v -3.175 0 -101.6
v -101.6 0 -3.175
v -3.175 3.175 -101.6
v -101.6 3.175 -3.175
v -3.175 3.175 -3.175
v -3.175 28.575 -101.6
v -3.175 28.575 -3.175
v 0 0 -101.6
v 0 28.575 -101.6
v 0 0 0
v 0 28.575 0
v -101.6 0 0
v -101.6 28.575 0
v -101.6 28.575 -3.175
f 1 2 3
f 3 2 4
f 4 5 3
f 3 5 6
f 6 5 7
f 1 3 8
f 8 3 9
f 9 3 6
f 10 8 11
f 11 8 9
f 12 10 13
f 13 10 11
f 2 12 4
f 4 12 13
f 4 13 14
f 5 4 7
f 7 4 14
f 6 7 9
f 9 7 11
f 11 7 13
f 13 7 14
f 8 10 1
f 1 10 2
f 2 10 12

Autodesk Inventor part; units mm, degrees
ref_plane "YZ Plane" through (0, 0, 0) normal (1, 0, 0) x (0, 1, 0)
ref_plane "XZ Plane" through (0, 0, 0) normal (0, 1, 0) x (-1, 0, 0)
ref_plane "XY Plane" through (0, 0, 0) normal (0, 0, 1) x (1, 0, 0)
sketch "Sketch1" plane through (0, 0, 0) normal (0, 1, 0) x (-1, 0, 0)
  line L0 (0, 0) -> (101.6, 0)
  line L1 (101.6, 0) -> (101.6, -3.175)
  line L2 (101.6, -3.175) -> (3.175, -3.175)
  line L3 (0, -3.175) -> (0, 0)
  line L4 (0, 0) -> (3.175, 0)
  line L5 (3.175, -3.175) -> (3.175, -101.6)
  line L6 (3.175, -101.6) -> (0, -101.6)
  line L7 (0, -101.6) -> (0, 0)
  dimension "d0" = 101.6
  dimension "d1" = 3.175
  dimension "d2" = 3.175
  dimension "d3" = 101.6
extrude "Extrusion1" add sketch "Sketch1" along normal blind 28.575
sketch "Sketch2" plane through (0, 0, 0) normal (0, -1, 0) x (1, 0, 0)
  line L0 (-3.175, -101.6) -> (-3.175, -3.175) projected
  line L1 (-3.175, -3.175) -> (-101.6, -3.175) projected
  line L2 (-3.175, -101.6) -> (-101.6, -3.175)
  point P0 (0, 0)
extrude "Extrusion2" add sketch "Sketch2" against normal blind 3.175
properties part number "Right Angle Gig"
